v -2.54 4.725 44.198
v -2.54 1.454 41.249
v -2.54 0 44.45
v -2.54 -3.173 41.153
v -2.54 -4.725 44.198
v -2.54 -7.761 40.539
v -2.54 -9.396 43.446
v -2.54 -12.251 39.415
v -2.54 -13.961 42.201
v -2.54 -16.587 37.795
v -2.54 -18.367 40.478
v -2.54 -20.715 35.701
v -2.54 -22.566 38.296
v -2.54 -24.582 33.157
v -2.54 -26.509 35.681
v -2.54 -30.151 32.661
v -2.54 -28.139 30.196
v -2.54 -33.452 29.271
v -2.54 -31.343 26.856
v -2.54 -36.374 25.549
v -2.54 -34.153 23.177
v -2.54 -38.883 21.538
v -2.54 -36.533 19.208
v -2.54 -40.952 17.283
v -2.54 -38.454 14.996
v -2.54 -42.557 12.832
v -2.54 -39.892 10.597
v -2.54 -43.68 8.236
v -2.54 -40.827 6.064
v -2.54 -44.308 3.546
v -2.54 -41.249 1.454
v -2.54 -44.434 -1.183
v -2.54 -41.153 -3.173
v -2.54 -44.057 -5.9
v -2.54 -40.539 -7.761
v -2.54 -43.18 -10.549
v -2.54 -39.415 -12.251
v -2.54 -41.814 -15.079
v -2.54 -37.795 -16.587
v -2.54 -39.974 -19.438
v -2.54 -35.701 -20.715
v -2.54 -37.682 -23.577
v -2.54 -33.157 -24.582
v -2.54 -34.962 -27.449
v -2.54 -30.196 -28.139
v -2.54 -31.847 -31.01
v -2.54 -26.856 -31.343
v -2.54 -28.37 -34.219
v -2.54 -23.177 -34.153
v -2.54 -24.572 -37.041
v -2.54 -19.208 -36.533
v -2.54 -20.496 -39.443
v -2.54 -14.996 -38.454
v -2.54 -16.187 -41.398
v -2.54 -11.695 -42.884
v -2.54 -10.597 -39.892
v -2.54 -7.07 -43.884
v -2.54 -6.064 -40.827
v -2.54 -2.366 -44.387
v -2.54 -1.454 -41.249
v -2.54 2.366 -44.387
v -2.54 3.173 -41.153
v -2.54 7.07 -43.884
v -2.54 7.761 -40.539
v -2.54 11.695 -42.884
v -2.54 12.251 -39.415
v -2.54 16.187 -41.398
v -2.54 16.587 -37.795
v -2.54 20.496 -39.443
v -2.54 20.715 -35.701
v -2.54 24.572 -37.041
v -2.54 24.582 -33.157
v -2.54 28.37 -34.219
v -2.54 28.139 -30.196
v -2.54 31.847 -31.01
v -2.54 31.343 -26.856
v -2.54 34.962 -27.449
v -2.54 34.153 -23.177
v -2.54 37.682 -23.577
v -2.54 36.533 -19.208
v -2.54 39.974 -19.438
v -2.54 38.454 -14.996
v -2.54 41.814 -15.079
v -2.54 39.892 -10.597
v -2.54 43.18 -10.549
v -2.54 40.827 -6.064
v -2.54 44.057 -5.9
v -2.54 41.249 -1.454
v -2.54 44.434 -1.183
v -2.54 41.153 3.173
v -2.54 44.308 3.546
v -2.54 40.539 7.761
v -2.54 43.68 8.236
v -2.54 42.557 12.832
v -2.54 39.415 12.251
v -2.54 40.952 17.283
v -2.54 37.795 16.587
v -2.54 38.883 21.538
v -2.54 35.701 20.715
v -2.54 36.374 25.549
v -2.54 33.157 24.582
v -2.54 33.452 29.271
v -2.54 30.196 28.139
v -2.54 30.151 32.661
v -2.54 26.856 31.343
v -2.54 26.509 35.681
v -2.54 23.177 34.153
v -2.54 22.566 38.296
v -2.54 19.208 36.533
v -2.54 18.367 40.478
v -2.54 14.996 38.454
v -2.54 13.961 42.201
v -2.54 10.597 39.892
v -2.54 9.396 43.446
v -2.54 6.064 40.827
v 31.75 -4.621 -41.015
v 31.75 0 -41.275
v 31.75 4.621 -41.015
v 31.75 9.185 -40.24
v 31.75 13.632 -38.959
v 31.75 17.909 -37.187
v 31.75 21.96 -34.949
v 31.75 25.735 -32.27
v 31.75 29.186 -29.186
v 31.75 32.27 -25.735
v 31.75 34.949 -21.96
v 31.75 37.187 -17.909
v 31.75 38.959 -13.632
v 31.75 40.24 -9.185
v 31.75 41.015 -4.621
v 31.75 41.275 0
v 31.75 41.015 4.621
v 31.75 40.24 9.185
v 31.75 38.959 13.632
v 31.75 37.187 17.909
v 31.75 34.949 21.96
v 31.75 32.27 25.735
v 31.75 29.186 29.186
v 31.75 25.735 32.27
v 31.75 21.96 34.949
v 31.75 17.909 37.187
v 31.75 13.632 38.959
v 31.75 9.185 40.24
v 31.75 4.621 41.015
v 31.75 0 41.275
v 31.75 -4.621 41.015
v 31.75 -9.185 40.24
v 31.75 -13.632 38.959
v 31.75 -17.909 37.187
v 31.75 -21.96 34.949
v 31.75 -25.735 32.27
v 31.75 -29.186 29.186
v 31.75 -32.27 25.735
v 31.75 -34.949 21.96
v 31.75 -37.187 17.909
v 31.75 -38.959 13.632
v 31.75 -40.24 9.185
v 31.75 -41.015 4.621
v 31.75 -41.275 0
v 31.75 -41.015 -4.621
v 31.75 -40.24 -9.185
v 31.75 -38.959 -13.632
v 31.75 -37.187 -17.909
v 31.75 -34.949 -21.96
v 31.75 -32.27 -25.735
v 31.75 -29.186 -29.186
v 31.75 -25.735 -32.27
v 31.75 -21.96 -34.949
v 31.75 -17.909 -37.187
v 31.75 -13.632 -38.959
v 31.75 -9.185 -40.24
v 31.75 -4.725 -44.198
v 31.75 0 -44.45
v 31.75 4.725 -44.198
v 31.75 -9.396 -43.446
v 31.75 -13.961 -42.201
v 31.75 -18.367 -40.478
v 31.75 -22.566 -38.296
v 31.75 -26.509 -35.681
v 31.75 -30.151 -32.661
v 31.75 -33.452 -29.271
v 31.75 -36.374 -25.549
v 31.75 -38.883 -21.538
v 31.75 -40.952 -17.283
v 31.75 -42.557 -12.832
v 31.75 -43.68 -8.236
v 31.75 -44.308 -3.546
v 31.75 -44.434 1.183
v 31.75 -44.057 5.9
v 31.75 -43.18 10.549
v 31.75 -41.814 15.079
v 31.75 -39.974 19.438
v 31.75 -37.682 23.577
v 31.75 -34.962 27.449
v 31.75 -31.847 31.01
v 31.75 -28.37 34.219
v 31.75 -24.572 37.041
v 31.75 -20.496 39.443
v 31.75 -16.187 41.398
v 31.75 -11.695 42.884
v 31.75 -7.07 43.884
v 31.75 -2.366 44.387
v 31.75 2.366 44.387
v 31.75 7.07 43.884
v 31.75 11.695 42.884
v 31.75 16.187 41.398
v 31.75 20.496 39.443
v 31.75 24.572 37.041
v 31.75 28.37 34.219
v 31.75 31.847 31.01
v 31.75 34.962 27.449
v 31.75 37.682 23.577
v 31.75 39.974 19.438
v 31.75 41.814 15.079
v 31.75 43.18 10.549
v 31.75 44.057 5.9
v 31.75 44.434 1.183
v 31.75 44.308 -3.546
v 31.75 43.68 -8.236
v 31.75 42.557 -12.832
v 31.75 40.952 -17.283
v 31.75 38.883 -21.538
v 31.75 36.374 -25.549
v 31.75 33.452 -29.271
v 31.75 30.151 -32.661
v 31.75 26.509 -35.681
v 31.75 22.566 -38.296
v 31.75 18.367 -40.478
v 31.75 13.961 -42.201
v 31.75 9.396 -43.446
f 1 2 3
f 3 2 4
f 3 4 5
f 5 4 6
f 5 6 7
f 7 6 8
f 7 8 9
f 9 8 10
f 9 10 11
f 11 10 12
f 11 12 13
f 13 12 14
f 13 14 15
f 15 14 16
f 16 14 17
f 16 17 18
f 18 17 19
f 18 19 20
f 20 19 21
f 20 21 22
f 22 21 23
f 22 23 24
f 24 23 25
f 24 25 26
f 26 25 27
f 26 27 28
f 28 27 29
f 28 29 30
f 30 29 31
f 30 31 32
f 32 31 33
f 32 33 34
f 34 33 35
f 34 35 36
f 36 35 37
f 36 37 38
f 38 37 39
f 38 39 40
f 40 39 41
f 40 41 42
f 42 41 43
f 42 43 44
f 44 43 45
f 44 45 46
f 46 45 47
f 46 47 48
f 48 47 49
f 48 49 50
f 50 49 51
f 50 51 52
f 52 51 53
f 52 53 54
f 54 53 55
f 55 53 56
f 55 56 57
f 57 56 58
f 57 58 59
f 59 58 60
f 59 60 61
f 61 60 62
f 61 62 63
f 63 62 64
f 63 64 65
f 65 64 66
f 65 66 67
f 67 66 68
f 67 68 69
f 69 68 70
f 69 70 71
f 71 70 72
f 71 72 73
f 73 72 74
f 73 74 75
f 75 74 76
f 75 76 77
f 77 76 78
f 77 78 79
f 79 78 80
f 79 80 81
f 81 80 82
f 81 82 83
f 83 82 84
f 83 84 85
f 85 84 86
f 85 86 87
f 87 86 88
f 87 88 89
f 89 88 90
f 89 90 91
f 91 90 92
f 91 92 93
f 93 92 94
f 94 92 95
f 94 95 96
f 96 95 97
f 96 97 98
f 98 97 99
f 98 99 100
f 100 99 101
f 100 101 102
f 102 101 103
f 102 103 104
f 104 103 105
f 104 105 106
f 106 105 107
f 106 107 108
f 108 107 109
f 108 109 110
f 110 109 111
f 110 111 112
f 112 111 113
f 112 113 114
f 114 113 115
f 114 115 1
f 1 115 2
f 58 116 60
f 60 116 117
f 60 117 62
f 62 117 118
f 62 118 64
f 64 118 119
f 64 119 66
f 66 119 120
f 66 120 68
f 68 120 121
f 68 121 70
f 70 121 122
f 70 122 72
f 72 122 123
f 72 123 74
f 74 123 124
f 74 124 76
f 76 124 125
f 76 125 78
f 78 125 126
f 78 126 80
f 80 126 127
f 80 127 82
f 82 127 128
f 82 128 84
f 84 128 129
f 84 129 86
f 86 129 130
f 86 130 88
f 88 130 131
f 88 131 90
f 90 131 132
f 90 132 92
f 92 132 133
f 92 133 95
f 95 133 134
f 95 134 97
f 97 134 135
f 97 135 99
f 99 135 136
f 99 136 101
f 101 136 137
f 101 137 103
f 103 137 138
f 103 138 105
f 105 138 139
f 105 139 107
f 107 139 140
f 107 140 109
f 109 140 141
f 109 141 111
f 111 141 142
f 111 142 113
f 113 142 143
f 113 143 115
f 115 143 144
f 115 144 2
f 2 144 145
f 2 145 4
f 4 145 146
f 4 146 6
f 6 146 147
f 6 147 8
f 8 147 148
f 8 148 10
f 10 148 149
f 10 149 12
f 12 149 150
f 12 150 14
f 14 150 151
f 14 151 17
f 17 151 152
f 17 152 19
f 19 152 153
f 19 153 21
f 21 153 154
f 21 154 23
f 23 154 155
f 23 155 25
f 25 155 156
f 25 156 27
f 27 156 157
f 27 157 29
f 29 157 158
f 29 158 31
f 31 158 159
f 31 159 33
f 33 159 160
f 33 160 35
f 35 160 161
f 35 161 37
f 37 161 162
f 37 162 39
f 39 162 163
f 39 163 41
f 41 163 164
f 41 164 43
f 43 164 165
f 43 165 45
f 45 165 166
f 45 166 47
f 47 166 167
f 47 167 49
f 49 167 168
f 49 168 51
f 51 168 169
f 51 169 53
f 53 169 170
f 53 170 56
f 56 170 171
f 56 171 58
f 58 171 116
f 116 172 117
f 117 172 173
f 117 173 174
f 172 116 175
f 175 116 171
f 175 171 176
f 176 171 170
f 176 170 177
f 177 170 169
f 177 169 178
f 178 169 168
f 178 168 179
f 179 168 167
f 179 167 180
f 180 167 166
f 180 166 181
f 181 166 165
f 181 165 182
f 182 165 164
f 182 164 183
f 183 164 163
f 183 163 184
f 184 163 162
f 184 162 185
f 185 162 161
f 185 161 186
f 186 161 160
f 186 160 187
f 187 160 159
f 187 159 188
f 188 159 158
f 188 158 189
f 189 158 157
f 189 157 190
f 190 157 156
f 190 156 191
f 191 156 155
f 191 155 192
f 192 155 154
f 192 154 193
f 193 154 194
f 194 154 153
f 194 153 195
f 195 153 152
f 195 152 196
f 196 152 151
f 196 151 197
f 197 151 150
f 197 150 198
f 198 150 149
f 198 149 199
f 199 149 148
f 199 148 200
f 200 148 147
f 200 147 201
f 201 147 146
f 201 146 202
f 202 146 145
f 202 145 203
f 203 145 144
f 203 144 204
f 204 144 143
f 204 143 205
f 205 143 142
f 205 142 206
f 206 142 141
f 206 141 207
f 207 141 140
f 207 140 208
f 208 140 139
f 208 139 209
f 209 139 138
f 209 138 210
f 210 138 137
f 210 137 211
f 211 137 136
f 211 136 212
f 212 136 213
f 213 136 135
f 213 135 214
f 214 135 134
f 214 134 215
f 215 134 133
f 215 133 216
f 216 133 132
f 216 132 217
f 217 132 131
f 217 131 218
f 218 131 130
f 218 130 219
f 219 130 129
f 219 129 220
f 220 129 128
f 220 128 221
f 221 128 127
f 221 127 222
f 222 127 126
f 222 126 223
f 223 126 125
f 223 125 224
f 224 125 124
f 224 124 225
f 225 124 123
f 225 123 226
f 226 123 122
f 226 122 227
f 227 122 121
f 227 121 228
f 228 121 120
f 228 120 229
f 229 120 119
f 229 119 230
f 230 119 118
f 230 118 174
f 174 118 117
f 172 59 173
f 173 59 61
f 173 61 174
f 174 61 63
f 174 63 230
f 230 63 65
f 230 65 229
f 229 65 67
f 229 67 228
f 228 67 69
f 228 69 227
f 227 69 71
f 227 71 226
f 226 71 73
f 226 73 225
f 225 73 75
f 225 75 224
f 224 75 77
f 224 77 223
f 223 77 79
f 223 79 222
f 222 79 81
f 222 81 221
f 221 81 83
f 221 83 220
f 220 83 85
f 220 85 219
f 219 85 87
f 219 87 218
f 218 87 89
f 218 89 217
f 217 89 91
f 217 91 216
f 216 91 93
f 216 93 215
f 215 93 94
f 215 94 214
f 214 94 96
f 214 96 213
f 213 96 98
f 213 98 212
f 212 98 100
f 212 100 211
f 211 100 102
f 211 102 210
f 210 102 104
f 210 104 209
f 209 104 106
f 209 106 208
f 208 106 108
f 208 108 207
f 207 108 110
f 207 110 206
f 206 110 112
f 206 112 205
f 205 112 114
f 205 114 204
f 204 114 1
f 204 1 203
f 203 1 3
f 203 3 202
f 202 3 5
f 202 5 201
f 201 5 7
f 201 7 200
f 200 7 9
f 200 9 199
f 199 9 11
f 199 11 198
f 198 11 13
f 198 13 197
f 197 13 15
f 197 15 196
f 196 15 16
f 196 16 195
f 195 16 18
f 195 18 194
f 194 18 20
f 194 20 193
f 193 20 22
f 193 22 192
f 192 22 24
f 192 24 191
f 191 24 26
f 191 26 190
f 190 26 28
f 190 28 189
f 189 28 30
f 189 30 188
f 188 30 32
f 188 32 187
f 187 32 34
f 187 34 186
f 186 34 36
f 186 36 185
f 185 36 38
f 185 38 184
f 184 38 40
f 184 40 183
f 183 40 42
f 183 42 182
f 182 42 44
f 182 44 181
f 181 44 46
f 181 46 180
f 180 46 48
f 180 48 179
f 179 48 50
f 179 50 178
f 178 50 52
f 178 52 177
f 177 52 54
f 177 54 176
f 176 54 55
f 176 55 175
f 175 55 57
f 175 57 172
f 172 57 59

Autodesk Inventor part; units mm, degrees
ref_plane "YZ Plane" through (0, 0, 0) normal (1, 0, 0) x (0, 1, 0)
ref_plane "XZ Plane" through (0, 0, 0) normal (0, 1, 0) x (-1, 0, 0)
ref_plane "XY Plane" through (0, 0, 0) normal (0, 0, 1) x (1, 0, 0)
ref_plane "Work Plane13" through (-2.54, 44.7855, -14.3129) normal (0, -1, 0) x (1, 0, 0)
sketch "Sketch6" plane through (-2.54, 44.7855, -14.3129) normal (0, -1, 0) x (1, 0, 0)
  line L0 (6.35, 32.4159) -> (26.9875, 32.4159) projected
  line L1 (13.4874, 32.4159) -> (13.4874, 26.0989)
  line L2 (26.9875, 32.4159) -> (26.9875, -3.9117) projected
  point P0 (2.54, 14.3129)
  dimension "d20" = 13.5001
ref_plane "Work Plane14" through (-2.54, 0, 0) normal (-1, 0, 0) x (0, 0, 1)
sketch "Sketch15" plane through (-2.54, 0, 0) normal (-1, 0, 0) x (0, 0, 1)
  circle A0 centre (0, 0) radius 41.275
  circle A1 centre (0, 0) radius 44.45
  dimension "d47" = 82.55
  dimension "d48" = 88.9
extrude "Extrusion11" add sketch "Sketch15" against normal blind 2.54
ref_plane "Work Plane10" through (0, 0, 0) normal (1, 0, 0) x (0, 0, -1)
sketch "Sketch16" plane through (0, 0, 0) normal (1, 0, 0) x (0, 0, -1)
  circle A0 centre (0, 0) radius 44.45
  circle A1 centre (0, 0) radius 41.275
  dimension "d51" = 82.55
extrude "Extrusion12" add sketch "Sketch16" along normal blind 31.75
ref_plane "Work Plane9" through (-2.54, 0, 0) normal (-1, 0, 0) x (0, 0, 1)
sketch "Sketch19" plane through (-2.54, 0, 0) normal (-1, 0, 0) x (0, 0, 1)
  line L0 (4.3346, 1.4542) -> (-4.3346, 1.4542) projected
  arc A0 (-16.671, 37.7585) -> (16.671, 37.7585) centre (0, 0) ccw projected
  line L1 (-4.3346, 1.4542) -> (-41.2494, 1.4542)
  line L2 (4.3346, 1.4542) -> (41.2494, 1.4542)
  circle A1 centre (0, 0) radius 8.382
  line L3 (-4.3346, -1.4542) -> (4.3346, -1.4542)
  line L4 (4.3346, 1.4542) -> (-4.3346, 1.4542)
  line L5 (-41.2494, -1.4542) -> (41.2494, -1.4542)
extrude "Extrusion14" add sketch "Sketch19" against normal blind 6.35 contours L2 A1 L5 L3 L1 L0 | L2 A0 L5 A1 | A1 L5 A0 L1
sketch "Sketch20" plane through (3.81, 0, 0) normal (1, 0, 0) x (0, 0, -1)
  line L0 (41.2494, 1.4542) -> (-41.2494, 1.4542) projected
  line L1 (-41.2494, -1.4542) -> (41.2494, -1.4542) projected
  arc A0 (-41.2494, 1.4542) -> (-41.2494, -1.4542) centre (0, 0) ccw projected
  arc A1 (41.2494, -1.4542) -> (41.2494, 1.4542) centre (0, 0) ccw projected
extrude "Extrusion15" cut sketch "Sketch20" against normal blind 6.35
ref_plane "Work Plane12" through (-2.54, 0, 0) normal (-1, 0, 0) x (0, 0, 1)
ref_plane "Work Plane11" through (3.81, 0, 0) normal (1, 0, 0) x (0, 0, -1)
properties part number "LiftMotorHousingBottom[FINAL]"
